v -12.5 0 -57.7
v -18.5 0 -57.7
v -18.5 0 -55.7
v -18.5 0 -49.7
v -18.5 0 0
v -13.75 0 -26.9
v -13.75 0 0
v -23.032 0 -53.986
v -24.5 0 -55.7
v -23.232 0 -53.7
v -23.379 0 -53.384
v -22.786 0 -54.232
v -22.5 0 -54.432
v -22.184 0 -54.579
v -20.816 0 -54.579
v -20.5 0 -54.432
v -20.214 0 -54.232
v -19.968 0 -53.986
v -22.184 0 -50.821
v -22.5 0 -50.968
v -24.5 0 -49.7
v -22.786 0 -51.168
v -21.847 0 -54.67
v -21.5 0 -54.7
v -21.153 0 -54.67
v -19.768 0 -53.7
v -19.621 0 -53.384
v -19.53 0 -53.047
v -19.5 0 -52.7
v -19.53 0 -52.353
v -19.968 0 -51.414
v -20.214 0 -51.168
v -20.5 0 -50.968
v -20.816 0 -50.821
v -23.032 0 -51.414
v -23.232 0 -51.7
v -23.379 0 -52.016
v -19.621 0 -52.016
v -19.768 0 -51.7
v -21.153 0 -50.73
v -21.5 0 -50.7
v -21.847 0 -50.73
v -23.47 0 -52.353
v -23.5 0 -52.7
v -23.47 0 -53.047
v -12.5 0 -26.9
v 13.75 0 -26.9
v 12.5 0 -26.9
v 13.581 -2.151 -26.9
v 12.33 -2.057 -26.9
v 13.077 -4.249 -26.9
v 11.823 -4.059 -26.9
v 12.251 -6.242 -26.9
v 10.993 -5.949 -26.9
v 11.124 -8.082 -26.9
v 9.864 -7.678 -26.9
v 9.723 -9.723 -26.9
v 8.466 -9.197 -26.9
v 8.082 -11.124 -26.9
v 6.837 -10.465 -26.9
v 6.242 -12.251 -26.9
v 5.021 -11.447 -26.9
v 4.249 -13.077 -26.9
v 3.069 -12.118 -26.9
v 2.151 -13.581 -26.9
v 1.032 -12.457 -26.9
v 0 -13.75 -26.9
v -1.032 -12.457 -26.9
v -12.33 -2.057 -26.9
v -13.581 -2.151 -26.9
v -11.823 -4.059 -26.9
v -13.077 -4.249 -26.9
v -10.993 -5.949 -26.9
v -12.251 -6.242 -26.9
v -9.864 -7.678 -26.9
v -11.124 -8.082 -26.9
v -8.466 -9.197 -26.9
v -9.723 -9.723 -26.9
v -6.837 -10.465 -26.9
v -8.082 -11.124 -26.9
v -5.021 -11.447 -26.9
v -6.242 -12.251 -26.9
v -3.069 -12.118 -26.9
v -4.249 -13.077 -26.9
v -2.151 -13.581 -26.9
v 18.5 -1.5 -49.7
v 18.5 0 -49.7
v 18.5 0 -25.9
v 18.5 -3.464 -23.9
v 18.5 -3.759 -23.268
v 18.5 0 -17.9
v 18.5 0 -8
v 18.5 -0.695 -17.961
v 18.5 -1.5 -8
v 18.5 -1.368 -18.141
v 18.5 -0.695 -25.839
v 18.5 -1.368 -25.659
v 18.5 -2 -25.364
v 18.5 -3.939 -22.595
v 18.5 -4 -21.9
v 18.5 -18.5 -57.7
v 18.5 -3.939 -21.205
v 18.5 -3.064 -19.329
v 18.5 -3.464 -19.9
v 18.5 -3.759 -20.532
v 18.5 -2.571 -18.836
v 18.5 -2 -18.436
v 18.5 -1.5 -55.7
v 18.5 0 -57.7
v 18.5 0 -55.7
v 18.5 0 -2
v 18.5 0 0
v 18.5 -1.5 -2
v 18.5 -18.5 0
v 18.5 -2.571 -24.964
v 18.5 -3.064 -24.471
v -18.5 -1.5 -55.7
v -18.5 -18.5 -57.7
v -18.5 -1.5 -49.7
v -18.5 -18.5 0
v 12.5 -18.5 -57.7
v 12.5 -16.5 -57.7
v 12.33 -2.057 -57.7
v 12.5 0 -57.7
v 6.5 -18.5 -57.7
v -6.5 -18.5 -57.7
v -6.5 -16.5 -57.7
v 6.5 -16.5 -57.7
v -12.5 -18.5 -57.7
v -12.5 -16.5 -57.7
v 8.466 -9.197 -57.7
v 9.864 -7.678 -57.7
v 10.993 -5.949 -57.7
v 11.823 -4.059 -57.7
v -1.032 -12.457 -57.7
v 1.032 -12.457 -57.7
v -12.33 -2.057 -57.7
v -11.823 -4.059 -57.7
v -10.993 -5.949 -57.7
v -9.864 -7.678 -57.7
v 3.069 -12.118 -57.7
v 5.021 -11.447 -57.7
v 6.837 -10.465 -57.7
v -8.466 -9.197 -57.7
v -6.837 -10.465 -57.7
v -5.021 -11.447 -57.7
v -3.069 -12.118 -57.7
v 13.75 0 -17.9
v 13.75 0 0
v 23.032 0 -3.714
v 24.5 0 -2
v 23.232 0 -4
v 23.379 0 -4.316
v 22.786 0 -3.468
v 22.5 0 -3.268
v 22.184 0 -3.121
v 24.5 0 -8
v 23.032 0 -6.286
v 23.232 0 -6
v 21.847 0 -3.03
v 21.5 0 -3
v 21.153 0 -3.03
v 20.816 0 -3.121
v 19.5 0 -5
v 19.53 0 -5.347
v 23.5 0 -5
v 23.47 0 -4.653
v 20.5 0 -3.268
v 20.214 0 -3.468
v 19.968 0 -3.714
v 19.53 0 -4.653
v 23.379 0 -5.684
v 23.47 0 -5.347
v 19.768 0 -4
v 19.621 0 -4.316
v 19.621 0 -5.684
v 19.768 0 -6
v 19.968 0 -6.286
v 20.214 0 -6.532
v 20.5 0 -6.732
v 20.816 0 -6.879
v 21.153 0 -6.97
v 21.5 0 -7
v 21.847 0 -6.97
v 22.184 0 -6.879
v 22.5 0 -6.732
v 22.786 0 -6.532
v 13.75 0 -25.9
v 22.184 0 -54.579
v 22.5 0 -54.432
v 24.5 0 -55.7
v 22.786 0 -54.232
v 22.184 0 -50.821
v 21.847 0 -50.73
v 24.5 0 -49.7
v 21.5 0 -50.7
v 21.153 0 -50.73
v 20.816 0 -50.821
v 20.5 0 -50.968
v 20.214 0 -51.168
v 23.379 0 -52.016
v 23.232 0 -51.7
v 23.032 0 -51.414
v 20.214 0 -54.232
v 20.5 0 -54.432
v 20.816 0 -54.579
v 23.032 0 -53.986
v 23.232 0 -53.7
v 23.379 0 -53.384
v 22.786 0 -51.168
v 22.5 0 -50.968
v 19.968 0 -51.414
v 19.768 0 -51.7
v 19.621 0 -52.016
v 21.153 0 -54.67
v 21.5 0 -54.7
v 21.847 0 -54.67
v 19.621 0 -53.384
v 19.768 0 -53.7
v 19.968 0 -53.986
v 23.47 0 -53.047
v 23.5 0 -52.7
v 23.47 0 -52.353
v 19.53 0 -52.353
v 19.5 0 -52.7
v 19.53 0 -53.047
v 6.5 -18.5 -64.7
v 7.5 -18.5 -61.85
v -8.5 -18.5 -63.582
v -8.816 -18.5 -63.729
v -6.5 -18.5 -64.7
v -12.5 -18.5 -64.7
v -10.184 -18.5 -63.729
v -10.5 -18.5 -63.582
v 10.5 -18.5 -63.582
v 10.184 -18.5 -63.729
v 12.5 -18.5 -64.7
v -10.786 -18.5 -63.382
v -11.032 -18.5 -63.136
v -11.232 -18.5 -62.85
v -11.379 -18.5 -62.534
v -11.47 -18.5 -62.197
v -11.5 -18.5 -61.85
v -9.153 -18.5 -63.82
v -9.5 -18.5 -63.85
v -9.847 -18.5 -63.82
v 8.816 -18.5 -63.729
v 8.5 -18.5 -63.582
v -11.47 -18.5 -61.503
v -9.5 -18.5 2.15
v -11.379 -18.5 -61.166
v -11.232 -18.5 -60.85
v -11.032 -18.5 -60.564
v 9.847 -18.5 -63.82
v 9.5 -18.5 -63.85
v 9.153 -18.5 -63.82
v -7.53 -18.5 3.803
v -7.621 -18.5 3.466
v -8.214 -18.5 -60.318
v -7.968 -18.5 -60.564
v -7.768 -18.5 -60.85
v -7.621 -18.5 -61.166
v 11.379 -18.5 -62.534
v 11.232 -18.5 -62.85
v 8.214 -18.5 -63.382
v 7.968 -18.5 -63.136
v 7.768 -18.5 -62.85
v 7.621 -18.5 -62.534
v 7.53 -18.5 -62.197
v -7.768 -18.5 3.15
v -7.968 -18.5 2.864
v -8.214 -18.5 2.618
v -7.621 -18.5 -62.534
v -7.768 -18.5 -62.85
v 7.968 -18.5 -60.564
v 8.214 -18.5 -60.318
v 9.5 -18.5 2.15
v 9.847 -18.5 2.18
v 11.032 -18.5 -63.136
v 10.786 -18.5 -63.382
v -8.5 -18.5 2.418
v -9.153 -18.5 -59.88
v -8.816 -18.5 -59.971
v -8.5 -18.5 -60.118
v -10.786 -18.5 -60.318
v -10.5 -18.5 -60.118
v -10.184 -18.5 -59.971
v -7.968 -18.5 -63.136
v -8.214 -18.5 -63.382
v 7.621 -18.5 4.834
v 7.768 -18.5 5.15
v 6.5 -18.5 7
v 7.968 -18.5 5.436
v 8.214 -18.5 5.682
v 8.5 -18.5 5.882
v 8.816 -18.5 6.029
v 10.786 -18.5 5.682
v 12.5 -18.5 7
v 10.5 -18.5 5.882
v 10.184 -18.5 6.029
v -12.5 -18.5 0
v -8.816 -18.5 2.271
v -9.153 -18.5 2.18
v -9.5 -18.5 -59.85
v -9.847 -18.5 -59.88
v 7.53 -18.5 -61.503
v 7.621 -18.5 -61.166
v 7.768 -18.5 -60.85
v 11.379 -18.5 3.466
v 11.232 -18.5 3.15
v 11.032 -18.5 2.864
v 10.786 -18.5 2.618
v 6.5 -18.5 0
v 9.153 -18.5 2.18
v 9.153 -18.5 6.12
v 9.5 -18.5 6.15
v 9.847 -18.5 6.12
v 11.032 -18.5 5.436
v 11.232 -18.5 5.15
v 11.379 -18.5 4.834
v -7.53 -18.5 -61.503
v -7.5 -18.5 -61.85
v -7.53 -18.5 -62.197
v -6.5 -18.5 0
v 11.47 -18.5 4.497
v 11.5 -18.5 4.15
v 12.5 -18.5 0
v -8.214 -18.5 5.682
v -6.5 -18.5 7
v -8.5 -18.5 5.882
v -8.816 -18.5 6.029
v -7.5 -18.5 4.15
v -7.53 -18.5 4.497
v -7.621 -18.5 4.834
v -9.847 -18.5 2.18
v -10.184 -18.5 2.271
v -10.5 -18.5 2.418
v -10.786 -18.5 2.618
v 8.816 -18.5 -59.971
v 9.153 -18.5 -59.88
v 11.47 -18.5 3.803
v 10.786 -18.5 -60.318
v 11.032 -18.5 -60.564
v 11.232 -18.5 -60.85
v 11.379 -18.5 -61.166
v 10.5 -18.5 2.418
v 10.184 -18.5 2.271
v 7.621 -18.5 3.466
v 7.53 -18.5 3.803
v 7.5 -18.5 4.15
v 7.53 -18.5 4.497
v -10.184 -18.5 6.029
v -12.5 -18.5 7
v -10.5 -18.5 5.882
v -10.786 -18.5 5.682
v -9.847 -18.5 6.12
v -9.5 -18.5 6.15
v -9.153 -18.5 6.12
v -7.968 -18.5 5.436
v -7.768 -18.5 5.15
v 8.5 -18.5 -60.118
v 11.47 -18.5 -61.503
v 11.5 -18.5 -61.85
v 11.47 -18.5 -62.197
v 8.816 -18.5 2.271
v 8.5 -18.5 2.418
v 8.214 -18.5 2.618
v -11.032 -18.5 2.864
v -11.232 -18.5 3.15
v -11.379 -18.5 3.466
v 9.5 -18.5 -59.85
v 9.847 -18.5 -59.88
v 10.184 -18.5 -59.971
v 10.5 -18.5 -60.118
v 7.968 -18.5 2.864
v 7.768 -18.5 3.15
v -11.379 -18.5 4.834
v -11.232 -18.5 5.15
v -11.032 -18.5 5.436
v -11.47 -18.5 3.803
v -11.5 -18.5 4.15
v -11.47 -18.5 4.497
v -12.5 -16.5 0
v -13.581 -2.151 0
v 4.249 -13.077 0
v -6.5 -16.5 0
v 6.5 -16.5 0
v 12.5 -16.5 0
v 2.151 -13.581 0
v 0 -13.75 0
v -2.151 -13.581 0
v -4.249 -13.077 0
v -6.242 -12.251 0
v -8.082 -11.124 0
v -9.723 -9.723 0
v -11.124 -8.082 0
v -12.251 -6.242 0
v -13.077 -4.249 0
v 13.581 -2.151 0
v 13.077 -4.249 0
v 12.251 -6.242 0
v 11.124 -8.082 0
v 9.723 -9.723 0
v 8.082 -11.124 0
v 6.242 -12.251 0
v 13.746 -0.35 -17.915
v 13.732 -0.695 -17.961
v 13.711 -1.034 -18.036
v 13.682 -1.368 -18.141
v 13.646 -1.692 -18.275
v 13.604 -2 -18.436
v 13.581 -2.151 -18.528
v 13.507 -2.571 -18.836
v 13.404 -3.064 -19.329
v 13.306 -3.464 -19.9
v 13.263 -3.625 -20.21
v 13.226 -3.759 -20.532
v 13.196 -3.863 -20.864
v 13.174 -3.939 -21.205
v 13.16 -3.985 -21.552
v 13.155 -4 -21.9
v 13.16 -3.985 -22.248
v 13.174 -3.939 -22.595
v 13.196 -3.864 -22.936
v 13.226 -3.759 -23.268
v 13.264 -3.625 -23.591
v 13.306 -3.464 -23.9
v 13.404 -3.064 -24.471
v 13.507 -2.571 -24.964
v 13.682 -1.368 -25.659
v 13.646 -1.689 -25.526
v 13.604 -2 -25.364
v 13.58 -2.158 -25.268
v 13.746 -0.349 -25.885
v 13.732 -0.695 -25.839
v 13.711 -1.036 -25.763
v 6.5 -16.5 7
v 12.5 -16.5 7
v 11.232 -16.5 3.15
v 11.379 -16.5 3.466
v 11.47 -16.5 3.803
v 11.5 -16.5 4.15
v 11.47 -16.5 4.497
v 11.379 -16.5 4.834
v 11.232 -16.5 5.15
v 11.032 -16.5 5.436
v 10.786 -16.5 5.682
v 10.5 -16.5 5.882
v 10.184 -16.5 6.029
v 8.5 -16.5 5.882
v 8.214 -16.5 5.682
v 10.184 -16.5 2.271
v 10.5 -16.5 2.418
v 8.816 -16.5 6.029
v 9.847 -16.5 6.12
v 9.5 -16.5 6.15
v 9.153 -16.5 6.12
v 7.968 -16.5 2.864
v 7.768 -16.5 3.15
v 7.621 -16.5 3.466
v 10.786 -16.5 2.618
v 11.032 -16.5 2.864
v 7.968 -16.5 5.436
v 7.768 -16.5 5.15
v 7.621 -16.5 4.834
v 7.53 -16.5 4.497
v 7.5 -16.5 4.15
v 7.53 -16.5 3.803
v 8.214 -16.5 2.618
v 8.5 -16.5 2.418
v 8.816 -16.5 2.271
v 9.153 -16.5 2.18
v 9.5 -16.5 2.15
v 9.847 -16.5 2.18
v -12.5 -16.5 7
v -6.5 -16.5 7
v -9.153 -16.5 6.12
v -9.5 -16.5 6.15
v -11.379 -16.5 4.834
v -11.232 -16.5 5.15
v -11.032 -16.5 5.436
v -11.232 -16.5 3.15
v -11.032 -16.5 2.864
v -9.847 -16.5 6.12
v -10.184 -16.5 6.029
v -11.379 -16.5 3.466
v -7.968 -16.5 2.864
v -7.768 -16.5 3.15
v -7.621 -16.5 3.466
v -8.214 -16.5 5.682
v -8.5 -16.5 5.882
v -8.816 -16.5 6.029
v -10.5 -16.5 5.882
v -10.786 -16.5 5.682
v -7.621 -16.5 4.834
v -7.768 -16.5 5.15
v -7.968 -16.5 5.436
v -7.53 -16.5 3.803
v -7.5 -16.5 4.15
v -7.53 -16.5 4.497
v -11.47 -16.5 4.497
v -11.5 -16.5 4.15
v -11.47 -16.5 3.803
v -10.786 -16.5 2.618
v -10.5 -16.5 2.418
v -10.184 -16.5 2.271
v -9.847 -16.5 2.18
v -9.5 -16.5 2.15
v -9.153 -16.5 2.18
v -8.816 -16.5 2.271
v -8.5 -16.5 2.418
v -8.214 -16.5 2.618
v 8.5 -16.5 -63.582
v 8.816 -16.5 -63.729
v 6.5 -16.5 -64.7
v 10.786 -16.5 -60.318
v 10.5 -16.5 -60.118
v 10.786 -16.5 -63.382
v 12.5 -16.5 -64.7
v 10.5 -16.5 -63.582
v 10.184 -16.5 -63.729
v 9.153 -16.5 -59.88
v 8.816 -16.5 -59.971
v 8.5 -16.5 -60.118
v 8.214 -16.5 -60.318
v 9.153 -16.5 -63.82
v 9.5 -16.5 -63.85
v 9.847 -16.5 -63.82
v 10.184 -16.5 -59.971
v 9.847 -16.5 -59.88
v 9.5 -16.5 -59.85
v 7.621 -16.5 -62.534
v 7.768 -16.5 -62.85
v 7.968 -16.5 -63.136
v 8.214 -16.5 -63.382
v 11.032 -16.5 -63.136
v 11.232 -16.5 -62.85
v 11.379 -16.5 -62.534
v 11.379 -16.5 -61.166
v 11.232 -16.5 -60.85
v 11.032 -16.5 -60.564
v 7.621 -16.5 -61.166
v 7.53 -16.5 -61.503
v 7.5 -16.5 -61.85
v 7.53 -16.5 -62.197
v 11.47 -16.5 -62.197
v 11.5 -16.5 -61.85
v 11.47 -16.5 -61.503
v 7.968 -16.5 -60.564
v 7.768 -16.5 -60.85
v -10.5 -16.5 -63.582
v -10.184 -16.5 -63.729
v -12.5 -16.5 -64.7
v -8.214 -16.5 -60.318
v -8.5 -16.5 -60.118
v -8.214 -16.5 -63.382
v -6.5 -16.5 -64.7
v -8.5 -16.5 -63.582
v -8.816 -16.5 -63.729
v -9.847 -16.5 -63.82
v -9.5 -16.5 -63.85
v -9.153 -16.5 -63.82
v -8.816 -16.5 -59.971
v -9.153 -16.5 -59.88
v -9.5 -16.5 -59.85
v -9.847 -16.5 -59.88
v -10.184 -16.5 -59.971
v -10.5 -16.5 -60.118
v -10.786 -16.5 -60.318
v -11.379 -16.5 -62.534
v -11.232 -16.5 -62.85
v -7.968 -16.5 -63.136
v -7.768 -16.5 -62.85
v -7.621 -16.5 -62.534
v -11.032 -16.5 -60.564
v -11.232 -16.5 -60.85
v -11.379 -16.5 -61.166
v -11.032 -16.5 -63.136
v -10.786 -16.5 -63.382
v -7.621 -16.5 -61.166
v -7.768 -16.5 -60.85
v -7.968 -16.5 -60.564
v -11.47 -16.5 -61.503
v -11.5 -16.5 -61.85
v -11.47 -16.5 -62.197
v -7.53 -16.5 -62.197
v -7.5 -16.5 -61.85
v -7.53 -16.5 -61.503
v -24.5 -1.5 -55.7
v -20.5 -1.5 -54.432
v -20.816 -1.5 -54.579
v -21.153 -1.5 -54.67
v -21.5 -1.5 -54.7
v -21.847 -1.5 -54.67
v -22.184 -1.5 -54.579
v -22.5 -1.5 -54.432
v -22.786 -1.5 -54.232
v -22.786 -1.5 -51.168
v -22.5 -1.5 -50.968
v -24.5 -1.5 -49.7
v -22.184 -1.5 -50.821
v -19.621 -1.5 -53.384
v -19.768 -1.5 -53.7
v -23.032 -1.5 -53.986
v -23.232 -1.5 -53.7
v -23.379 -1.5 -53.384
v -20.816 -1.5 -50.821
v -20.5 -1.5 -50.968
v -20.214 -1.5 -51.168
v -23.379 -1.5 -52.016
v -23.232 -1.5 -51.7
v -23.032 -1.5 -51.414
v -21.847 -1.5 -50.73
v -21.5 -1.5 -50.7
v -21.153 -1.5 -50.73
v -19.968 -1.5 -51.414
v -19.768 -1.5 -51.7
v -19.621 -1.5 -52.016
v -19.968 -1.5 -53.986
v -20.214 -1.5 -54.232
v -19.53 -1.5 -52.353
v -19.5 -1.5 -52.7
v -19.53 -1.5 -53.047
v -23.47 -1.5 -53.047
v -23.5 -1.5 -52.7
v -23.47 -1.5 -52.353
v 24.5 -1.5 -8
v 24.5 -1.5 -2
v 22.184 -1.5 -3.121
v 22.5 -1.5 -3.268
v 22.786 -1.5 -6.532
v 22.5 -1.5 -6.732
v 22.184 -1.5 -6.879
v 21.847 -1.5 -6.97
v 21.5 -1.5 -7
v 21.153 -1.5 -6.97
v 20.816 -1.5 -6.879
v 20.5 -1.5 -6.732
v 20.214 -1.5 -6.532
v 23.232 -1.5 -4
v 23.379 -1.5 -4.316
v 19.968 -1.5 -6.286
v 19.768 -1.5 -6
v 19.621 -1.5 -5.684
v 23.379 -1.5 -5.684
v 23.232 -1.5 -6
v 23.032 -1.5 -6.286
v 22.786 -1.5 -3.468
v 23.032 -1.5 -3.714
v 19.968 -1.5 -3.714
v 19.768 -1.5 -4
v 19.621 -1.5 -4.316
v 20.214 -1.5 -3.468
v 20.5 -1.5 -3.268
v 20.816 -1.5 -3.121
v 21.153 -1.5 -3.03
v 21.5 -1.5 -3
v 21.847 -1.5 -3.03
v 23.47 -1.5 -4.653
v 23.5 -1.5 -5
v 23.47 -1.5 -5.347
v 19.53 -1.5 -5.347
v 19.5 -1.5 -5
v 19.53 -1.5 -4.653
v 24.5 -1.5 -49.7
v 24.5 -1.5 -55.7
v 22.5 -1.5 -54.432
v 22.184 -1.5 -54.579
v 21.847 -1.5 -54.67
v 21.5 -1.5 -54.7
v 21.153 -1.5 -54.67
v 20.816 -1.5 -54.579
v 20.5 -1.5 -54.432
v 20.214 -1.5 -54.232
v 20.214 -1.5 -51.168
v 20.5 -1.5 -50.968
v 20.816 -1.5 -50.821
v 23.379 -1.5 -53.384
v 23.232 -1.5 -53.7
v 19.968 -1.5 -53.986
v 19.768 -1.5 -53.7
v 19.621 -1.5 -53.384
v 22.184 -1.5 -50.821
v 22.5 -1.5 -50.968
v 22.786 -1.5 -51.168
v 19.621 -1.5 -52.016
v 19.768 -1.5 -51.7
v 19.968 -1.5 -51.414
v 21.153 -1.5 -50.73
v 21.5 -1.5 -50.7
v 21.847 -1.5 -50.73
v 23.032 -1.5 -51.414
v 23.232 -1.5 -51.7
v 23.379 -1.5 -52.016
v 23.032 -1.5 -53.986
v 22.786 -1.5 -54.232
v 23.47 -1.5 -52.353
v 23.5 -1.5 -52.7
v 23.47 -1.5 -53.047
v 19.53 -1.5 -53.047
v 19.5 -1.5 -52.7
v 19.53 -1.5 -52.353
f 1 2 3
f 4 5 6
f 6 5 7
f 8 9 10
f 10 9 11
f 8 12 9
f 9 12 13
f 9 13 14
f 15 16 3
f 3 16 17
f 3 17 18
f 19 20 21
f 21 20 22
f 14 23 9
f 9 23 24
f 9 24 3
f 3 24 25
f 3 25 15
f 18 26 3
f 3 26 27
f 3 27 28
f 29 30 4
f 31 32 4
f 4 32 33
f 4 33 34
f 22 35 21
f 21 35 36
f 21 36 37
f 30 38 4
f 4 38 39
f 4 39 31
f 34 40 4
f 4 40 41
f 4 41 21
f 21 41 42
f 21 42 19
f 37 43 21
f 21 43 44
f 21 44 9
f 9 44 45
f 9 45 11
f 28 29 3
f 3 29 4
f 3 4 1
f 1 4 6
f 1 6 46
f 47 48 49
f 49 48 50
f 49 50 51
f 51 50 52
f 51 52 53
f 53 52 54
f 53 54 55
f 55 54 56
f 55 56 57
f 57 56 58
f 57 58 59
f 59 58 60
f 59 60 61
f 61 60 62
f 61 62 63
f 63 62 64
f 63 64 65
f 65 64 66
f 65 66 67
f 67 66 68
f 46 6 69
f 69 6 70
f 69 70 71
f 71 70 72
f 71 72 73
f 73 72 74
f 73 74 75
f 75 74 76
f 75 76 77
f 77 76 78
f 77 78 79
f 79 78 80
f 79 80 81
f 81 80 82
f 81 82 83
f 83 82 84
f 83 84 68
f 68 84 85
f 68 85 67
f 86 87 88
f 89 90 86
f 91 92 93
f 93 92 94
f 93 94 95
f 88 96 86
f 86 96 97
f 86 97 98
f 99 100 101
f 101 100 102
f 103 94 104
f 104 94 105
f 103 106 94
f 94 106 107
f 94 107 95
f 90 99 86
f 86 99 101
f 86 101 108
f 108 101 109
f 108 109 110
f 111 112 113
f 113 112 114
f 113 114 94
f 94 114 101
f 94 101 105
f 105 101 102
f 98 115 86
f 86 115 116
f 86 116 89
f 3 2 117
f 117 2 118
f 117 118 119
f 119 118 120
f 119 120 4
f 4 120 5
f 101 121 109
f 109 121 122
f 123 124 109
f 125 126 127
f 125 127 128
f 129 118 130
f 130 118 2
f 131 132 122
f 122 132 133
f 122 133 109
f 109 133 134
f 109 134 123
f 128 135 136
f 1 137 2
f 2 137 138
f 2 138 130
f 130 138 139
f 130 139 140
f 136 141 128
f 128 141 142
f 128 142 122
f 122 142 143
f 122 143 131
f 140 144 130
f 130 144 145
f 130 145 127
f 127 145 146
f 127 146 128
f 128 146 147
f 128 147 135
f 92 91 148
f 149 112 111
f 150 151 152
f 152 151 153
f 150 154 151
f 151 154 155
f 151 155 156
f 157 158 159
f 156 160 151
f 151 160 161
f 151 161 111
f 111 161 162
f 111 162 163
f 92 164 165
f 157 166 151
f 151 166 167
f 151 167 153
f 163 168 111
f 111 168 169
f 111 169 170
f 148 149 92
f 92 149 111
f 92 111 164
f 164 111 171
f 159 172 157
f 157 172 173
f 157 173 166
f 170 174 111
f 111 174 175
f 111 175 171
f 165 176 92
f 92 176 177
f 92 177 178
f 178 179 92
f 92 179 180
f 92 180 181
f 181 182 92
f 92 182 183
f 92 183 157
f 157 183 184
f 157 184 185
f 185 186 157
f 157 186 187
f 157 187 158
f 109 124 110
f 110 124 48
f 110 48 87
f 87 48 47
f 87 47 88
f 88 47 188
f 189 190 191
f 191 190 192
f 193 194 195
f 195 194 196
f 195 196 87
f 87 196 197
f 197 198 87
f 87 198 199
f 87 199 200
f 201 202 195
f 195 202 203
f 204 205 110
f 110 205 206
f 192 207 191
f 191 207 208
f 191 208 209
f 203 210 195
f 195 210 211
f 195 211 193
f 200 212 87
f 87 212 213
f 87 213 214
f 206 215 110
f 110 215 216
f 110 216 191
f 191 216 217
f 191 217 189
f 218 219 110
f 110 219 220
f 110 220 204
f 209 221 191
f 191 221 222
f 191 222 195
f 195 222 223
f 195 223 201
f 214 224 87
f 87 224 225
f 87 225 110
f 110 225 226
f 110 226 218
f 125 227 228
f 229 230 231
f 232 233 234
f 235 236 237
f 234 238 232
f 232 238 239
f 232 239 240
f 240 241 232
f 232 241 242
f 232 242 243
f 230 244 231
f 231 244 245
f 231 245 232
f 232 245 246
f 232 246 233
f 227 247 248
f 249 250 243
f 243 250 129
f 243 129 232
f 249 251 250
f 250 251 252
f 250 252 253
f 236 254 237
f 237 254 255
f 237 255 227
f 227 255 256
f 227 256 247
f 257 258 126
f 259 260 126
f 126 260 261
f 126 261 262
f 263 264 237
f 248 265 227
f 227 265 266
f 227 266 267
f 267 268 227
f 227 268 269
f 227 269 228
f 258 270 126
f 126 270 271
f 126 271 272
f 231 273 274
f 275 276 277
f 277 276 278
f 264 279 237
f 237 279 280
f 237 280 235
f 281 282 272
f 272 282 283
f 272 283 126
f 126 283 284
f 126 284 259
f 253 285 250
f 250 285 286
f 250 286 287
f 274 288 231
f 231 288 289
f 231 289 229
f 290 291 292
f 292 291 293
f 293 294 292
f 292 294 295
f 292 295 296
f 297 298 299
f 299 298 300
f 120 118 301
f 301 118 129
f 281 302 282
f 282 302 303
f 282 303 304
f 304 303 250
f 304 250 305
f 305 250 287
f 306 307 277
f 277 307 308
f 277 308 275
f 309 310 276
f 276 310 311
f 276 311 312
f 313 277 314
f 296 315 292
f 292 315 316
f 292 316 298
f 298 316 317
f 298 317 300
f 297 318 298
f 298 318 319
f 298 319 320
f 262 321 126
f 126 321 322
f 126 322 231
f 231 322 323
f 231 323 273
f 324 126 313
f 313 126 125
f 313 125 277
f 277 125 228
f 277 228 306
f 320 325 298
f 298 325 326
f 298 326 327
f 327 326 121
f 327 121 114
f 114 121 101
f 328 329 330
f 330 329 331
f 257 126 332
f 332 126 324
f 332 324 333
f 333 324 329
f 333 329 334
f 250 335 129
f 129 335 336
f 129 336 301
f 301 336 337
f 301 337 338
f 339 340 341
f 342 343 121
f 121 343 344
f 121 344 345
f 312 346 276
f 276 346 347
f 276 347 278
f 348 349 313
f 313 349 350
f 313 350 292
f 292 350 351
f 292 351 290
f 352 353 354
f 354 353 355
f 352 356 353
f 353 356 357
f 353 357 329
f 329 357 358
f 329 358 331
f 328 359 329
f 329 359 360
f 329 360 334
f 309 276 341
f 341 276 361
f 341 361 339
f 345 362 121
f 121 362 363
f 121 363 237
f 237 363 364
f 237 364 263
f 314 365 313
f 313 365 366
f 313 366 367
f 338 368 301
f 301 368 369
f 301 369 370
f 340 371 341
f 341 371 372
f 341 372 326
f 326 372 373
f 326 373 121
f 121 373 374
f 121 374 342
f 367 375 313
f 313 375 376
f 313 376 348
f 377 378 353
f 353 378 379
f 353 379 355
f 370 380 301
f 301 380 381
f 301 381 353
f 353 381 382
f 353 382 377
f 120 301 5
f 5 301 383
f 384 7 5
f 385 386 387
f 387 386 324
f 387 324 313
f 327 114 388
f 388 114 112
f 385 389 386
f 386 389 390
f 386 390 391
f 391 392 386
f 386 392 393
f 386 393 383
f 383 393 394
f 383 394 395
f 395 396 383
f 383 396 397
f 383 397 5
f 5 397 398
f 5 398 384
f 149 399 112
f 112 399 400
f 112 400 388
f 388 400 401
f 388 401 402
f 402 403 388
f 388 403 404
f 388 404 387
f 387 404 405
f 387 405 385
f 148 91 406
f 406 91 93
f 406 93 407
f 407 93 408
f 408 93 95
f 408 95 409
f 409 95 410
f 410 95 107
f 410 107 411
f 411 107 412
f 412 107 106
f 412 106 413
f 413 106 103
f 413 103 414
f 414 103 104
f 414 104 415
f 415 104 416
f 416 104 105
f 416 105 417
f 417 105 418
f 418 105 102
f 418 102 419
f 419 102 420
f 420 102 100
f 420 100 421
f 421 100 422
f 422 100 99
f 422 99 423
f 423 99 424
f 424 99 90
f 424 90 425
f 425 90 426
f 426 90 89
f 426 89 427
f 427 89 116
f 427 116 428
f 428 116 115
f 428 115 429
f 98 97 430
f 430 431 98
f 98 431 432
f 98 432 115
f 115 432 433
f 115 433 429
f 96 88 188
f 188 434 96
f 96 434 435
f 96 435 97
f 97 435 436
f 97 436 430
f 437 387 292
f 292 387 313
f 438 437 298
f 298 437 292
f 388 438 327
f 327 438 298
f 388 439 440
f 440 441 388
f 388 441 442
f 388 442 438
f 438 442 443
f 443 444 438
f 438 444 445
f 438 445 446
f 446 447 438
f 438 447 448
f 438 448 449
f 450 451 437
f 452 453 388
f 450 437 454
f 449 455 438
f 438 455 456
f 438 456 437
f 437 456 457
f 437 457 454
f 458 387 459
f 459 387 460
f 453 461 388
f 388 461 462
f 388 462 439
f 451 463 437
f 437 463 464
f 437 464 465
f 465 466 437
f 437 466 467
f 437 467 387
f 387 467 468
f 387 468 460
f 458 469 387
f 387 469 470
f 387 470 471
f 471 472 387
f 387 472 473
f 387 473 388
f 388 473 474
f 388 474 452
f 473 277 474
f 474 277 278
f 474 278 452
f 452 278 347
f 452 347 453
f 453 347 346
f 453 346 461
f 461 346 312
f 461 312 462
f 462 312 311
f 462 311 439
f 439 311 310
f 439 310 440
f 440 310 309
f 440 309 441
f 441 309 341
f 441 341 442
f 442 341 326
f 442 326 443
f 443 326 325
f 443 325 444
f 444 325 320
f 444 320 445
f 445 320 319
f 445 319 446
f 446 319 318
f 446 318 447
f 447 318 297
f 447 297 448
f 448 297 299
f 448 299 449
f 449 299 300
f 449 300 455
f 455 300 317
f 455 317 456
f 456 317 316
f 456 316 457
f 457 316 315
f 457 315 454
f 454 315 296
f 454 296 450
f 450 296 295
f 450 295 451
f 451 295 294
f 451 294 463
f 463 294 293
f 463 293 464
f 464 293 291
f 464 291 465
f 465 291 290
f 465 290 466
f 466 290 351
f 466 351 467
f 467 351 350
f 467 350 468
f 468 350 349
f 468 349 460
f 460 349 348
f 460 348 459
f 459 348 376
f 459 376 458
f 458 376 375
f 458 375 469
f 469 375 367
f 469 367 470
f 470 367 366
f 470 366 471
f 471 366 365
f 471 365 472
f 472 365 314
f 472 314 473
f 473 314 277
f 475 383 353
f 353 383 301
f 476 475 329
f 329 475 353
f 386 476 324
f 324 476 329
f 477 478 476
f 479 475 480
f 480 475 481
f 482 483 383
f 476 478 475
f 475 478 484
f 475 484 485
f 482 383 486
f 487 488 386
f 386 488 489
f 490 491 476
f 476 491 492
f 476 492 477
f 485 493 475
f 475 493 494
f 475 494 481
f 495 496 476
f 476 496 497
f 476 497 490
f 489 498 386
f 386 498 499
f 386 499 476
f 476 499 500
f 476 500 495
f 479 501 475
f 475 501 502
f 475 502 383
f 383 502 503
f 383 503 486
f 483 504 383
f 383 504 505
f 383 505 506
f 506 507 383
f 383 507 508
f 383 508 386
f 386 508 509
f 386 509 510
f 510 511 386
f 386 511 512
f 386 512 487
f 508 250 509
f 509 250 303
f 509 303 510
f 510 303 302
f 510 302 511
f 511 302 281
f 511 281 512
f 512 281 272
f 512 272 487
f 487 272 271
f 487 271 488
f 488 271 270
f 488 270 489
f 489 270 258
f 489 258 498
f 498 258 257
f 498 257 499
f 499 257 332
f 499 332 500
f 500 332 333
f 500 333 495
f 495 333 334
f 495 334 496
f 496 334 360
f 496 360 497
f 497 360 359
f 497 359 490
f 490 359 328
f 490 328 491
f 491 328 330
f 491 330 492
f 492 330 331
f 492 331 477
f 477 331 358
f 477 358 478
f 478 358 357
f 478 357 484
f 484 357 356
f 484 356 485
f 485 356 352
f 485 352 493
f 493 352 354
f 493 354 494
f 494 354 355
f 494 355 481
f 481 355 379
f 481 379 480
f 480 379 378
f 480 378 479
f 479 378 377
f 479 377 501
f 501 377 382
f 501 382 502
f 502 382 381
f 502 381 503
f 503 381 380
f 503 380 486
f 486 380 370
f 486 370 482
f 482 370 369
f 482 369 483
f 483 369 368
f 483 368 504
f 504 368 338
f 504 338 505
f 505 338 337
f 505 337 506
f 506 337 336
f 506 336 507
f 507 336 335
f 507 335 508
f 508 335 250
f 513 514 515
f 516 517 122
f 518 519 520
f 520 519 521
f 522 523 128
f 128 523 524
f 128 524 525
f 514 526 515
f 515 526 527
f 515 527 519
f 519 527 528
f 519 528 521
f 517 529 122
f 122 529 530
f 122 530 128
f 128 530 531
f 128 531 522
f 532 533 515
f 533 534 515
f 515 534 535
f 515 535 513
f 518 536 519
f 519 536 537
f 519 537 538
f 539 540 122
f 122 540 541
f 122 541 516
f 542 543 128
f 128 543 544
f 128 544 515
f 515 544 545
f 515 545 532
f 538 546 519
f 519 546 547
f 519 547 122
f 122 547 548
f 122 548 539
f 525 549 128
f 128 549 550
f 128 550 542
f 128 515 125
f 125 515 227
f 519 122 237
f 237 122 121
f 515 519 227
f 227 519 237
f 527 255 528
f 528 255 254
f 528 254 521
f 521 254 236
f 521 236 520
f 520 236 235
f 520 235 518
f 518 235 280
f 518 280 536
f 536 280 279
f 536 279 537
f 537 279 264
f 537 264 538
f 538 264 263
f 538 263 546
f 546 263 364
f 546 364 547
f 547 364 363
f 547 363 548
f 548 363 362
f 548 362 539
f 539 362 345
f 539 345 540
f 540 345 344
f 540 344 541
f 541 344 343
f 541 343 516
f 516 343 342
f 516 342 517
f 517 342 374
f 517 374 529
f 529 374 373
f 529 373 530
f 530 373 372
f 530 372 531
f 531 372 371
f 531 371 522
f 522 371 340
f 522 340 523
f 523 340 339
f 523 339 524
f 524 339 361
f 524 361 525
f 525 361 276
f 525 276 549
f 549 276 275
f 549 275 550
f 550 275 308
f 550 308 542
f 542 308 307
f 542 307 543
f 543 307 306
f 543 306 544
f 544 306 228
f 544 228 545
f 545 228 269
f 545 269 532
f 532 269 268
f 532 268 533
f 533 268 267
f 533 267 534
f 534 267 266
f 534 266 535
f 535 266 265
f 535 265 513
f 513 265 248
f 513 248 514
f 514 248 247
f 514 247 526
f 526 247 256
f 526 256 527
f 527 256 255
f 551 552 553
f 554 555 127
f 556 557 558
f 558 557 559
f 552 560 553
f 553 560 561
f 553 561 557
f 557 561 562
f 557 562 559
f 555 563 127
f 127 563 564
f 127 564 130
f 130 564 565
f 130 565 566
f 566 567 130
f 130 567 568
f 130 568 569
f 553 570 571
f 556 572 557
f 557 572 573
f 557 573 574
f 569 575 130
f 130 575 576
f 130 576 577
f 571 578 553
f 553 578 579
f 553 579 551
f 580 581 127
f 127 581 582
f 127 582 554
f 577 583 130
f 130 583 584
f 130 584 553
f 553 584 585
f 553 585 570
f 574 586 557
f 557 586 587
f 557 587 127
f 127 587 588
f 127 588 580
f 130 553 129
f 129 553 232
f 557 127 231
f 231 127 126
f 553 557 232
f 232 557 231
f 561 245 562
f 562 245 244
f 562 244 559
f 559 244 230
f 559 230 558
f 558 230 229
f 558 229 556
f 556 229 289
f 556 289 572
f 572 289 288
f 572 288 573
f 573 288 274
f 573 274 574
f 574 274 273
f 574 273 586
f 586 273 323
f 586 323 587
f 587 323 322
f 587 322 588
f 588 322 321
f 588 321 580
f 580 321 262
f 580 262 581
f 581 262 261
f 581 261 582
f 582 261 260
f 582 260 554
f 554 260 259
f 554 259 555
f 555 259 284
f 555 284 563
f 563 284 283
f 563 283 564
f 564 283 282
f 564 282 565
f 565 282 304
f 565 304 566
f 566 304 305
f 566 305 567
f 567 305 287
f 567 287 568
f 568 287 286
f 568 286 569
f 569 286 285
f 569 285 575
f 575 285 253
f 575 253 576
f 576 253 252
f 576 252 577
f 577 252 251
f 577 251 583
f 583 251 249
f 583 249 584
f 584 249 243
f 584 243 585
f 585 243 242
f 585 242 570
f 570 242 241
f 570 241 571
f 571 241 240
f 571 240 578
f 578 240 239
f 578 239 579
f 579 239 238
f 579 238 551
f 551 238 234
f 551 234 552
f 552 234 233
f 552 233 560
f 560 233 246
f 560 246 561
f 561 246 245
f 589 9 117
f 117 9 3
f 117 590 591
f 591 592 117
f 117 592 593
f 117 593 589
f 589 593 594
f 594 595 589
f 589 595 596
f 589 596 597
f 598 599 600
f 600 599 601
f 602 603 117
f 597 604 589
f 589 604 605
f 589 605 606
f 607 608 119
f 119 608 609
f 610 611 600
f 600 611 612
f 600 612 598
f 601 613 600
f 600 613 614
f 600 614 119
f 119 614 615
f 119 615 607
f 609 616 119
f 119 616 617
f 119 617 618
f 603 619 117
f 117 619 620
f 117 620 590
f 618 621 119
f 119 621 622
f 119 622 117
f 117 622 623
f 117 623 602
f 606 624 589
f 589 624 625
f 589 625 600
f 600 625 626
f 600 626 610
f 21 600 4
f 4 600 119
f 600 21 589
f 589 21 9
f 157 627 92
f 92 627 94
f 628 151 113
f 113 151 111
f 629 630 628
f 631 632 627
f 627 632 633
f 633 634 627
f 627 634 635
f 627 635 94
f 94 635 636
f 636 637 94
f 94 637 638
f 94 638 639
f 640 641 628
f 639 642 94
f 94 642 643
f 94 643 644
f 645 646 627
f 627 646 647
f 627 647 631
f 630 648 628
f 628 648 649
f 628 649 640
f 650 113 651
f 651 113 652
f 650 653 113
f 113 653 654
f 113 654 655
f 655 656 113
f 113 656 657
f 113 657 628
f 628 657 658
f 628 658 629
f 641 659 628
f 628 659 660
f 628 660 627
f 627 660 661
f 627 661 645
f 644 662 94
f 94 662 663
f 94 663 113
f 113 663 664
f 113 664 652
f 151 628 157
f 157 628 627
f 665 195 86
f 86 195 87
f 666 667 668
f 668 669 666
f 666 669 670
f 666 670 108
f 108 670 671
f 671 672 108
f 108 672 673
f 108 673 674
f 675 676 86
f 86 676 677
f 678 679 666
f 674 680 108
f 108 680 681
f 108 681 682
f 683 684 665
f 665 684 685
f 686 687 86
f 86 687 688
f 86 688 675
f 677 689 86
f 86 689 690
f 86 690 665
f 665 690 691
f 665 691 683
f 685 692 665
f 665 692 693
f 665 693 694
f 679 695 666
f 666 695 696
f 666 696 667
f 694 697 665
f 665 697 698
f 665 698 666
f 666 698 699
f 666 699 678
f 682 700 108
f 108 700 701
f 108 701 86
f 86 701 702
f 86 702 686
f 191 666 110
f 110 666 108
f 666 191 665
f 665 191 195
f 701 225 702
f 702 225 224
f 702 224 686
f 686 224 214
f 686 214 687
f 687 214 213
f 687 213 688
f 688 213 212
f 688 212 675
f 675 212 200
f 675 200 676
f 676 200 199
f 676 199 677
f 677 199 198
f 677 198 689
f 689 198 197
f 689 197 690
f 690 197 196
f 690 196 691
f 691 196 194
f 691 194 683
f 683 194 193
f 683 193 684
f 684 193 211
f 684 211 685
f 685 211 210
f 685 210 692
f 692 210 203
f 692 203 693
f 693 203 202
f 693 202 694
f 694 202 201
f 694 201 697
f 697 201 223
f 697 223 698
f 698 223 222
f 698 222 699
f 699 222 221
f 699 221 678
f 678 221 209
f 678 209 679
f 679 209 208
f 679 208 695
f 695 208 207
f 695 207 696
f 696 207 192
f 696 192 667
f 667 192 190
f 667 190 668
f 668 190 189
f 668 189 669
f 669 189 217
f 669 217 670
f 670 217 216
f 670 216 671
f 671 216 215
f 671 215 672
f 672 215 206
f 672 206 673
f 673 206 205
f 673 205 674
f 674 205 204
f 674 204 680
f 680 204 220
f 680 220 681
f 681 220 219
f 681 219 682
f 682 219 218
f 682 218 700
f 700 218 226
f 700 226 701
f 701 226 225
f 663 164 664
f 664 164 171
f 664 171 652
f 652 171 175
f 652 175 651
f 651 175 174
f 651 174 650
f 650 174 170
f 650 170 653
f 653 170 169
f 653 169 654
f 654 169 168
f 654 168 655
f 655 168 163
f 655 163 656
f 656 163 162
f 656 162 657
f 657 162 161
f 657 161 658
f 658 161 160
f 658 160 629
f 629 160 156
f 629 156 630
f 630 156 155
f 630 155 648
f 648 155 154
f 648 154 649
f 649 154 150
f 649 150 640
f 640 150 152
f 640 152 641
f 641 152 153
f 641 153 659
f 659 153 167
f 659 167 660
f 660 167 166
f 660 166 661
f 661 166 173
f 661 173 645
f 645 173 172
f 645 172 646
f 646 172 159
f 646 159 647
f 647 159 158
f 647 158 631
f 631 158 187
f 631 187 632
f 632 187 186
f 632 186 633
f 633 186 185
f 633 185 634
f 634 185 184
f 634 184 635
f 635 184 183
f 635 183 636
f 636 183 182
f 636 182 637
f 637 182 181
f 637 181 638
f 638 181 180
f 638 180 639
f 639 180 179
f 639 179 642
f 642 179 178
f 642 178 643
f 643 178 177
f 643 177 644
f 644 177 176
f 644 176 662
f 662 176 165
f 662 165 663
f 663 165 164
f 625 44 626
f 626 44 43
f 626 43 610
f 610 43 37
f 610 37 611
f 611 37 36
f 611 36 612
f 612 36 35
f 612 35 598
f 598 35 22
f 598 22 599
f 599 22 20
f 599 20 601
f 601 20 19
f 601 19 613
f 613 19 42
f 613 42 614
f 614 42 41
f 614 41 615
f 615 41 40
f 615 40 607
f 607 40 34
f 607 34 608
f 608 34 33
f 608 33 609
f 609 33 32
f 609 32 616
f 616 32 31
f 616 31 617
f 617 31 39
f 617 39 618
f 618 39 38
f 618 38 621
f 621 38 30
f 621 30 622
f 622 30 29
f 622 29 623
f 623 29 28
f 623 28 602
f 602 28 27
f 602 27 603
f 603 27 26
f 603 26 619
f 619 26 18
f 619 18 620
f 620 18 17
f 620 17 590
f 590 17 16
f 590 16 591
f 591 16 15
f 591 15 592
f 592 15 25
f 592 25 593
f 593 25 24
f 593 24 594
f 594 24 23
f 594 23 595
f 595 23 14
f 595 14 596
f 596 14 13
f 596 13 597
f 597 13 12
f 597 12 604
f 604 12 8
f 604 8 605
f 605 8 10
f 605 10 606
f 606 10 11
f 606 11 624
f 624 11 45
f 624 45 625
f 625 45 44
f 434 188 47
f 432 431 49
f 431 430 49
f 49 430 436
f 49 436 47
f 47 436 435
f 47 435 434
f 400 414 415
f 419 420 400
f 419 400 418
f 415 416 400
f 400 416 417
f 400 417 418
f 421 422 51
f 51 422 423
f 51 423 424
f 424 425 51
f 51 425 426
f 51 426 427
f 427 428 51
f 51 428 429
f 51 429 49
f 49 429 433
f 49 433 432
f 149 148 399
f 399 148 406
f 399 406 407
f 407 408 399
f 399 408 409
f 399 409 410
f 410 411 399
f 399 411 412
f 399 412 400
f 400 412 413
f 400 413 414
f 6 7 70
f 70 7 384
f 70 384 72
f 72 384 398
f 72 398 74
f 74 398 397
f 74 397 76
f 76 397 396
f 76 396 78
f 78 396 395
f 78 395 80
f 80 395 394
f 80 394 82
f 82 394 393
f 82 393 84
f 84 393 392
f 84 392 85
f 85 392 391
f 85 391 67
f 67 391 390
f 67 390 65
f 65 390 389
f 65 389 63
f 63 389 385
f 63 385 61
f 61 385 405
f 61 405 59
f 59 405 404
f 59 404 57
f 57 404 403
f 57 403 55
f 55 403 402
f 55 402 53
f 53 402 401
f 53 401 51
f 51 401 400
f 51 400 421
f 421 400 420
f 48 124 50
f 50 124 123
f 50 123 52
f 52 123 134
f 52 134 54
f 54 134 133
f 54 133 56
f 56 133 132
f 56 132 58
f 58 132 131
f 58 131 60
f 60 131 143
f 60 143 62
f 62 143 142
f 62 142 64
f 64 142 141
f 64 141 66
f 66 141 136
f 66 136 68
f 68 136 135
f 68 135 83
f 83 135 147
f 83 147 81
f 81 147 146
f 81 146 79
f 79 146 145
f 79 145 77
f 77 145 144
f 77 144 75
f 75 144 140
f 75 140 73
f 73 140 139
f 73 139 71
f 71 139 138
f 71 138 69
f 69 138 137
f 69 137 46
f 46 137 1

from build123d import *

# Parameters (mm, degrees)
EXTRUDE_1_DEPTH     = 57.7
EXTRUDE_2_DEPTH     = 30.8
SKETCH_5_R          = 4
CUT_EXTRUDE_1_DEPTH = 15
SKETCH_7_W          = 6
SKETCH_7_H          = 7
SKETCH_7_R          = 2
EXTRUDE_3_DEPTH     = 2
SKETCH_8_W          = 6
SKETCH_8_H          = 1.5
EXTRUDE_4_DEPTH     = 6
EXTRUDE_START       = -37
SKETCH_8_3_W        = 6
SKETCH_8_3_H        = 1.5
EXTRUDE_5_DEPTH     = 6
SKETCH_9_R          = 2
CUT_EXTRUDE_2_DEPTH = 6
CUT_EXTRUDE_START   = -26.9
CUT_EXTRUDE_3_DEPTH = 26.9
CUT_EXTRUDE_4_DEPTH = 49.696406438
SKETCH_12_W         = 6
SKETCH_12_H         = 6
CUT_EXTRUDE_5_DEPTH = 10


with BuildPart() as part:
    # 스케치1 → 보스-돌출1 (new body)
    with BuildSketch(Plane.XY):
        with BuildLine():
            Line((-13.5, 0), (-18.5, 0))
            Line((-18.5, 0), (-18.5, -18.5))
            Line((-18.5, -18.5), (18.5, -18.5))
            Line((18.5, -18.5), (18.5, 0))
            Line((18.5, 0), (13.5, 0))
            ThreePointArc((13.5, 0), (0, -13.5), (-13.5, 0))
        make_face()
    extrude(amount=-EXTRUDE_1_DEPTH)

    # 스케치3 → 보스-돌출2 (add)
    with BuildSketch(Plane.XY.offset(-26.9)):
        with BuildLine():
            Line((-13.5, 0), (-11.5, 0))
            ThreePointArc((-11.5, 0), (0, -11.5), (11.5, 0))
            Line((11.5, 0), (13.5, 0))
            ThreePointArc((13.5, 0), (0, -13.5), (-13.5, 0))
        make_face()
    extrude(amount=-EXTRUDE_2_DEPTH)

    # 스케치5 → 컷-돌출1 (cut)
    with BuildSketch(Plane.ZY.offset(-18.5)):
        with Locations((-21.9, 0)):
            Circle(SKETCH_5_R)
    extrude(amount=CUT_EXTRUDE_1_DEPTH, mode=Mode.SUBTRACT)

    # 스케치7 → 보스-돌출3 (add)
    # profile 1 of 2: a face of its own
    with BuildSketch(Plane.XZ.offset(18.5)):
        with Locations((9.5, 3.5)):
            Rectangle(SKETCH_7_W, SKETCH_7_H)
        with Locations(Location((9.5, 4.15, 0), (0, 0, 270))):
            Circle(SKETCH_7_R, mode=Mode.SUBTRACT)
    # profile 2 of 2: a face of its own
    with BuildSketch(Plane.XZ.offset(18.5)):
        with Locations((-9.5, 3.5)):
            Rectangle(SKETCH_7_W, SKETCH_7_H)
        with Locations(Location((-9.5, 4.15, 0), (0, 0, 270))):
            Circle(SKETCH_7_R, mode=Mode.SUBTRACT)
    extrude_3 = extrude(amount=-EXTRUDE_3_DEPTH)

    # 대칭 복사1: 보스-돌출3 across plane
    add(extrude_3.mirror(Plane.XY.offset(-28.85)))

    # 스케치8 → 보스-돌출4 (add)
    with BuildSketch(Plane.ZY.offset(18.5)):
        with Locations((-5, -0.75)):
            Rectangle(SKETCH_8_W, SKETCH_8_H)
        with Locations((-52.7, -0.75)):
            Rectangle(SKETCH_8_W, SKETCH_8_H)
    extrude(amount=EXTRUDE_4_DEPTH)

    # 스케치8<3> → 보스-돌출5 (add)
    with BuildSketch(Plane.ZY.offset(18.5).offset(EXTRUDE_START)):
        with Locations((-5, -0.75)):
            Rectangle(SKETCH_8_3_W, SKETCH_8_3_H)
        with Locations((-52.7, -0.75)):
            Rectangle(SKETCH_8_3_W, SKETCH_8_3_H)
    extrude(amount=-EXTRUDE_5_DEPTH)

    # 스케치9 → 컷-돌출2 (cut)
    with BuildSketch(Plane(origin=(0, 0, 0), x_dir=(1, 0, 0), z_dir=(0, 1, 0))):
        with Locations(Location((-21.5, 52.7, 0), (0, 0, 180))):
            Circle(SKETCH_9_R)
        with Locations(Location((-21.5, 5, 0), (0, 0, 180))):
            Circle(SKETCH_9_R)
        with Locations(Location((21.5, 5, 0), (0, 0, 270))):
            Circle(SKETCH_9_R)
        with Locations(Location((21.5, 52.7, 0), (0, 0, 90))):
            Circle(SKETCH_9_R)
    extrude(amount=-CUT_EXTRUDE_2_DEPTH, mode=Mode.SUBTRACT)

    # 스케치10 → 컷-돌출3 (cut)
    with BuildSketch(Plane.XY.offset(CUT_EXTRUDE_START)):
        with BuildLine():
            Line((-13.5, 0), (-13.75, 0))
            ThreePointArc((-13.75, 0), (0, -13.75), (13.75, 0))
            Line((13.75, 0), (13.5, 0))
            ThreePointArc((13.5, 0), (0, -13.5), (-13.5, 0))
        make_face()
    extrude(amount=CUT_EXTRUDE_3_DEPTH, mode=Mode.SUBTRACT)

    # 스케치11 → 컷-돌출4 (cut, through all)
    with BuildSketch(Plane.XY.offset(-26.9)):
        with BuildLine():
            ThreePointArc((11.5, 0), (0, -11.5), (-11.5, 0))
            Line((-11.5, 0), (-12.5, 0))
            ThreePointArc((-12.5, 0), (0, -12.5), (12.5, 0))
            Line((12.5, 0), (11.5, 0))
        make_face()
    extrude(amount=-CUT_EXTRUDE_4_DEPTH, mode=Mode.SUBTRACT)

    # 스케치12 → 컷-돌출5 (cut)
    with BuildSketch(Plane(origin=(0, 0, 0), x_dir=(1, 0, 0), z_dir=(0, 1, 0))):
        with Locations((-21.5, 5)):
            Rectangle(SKETCH_12_W, SKETCH_12_H)
    extrude(amount=-CUT_EXTRUDE_5_DEPTH, mode=Mode.SUBTRACT)


solid = part.part
